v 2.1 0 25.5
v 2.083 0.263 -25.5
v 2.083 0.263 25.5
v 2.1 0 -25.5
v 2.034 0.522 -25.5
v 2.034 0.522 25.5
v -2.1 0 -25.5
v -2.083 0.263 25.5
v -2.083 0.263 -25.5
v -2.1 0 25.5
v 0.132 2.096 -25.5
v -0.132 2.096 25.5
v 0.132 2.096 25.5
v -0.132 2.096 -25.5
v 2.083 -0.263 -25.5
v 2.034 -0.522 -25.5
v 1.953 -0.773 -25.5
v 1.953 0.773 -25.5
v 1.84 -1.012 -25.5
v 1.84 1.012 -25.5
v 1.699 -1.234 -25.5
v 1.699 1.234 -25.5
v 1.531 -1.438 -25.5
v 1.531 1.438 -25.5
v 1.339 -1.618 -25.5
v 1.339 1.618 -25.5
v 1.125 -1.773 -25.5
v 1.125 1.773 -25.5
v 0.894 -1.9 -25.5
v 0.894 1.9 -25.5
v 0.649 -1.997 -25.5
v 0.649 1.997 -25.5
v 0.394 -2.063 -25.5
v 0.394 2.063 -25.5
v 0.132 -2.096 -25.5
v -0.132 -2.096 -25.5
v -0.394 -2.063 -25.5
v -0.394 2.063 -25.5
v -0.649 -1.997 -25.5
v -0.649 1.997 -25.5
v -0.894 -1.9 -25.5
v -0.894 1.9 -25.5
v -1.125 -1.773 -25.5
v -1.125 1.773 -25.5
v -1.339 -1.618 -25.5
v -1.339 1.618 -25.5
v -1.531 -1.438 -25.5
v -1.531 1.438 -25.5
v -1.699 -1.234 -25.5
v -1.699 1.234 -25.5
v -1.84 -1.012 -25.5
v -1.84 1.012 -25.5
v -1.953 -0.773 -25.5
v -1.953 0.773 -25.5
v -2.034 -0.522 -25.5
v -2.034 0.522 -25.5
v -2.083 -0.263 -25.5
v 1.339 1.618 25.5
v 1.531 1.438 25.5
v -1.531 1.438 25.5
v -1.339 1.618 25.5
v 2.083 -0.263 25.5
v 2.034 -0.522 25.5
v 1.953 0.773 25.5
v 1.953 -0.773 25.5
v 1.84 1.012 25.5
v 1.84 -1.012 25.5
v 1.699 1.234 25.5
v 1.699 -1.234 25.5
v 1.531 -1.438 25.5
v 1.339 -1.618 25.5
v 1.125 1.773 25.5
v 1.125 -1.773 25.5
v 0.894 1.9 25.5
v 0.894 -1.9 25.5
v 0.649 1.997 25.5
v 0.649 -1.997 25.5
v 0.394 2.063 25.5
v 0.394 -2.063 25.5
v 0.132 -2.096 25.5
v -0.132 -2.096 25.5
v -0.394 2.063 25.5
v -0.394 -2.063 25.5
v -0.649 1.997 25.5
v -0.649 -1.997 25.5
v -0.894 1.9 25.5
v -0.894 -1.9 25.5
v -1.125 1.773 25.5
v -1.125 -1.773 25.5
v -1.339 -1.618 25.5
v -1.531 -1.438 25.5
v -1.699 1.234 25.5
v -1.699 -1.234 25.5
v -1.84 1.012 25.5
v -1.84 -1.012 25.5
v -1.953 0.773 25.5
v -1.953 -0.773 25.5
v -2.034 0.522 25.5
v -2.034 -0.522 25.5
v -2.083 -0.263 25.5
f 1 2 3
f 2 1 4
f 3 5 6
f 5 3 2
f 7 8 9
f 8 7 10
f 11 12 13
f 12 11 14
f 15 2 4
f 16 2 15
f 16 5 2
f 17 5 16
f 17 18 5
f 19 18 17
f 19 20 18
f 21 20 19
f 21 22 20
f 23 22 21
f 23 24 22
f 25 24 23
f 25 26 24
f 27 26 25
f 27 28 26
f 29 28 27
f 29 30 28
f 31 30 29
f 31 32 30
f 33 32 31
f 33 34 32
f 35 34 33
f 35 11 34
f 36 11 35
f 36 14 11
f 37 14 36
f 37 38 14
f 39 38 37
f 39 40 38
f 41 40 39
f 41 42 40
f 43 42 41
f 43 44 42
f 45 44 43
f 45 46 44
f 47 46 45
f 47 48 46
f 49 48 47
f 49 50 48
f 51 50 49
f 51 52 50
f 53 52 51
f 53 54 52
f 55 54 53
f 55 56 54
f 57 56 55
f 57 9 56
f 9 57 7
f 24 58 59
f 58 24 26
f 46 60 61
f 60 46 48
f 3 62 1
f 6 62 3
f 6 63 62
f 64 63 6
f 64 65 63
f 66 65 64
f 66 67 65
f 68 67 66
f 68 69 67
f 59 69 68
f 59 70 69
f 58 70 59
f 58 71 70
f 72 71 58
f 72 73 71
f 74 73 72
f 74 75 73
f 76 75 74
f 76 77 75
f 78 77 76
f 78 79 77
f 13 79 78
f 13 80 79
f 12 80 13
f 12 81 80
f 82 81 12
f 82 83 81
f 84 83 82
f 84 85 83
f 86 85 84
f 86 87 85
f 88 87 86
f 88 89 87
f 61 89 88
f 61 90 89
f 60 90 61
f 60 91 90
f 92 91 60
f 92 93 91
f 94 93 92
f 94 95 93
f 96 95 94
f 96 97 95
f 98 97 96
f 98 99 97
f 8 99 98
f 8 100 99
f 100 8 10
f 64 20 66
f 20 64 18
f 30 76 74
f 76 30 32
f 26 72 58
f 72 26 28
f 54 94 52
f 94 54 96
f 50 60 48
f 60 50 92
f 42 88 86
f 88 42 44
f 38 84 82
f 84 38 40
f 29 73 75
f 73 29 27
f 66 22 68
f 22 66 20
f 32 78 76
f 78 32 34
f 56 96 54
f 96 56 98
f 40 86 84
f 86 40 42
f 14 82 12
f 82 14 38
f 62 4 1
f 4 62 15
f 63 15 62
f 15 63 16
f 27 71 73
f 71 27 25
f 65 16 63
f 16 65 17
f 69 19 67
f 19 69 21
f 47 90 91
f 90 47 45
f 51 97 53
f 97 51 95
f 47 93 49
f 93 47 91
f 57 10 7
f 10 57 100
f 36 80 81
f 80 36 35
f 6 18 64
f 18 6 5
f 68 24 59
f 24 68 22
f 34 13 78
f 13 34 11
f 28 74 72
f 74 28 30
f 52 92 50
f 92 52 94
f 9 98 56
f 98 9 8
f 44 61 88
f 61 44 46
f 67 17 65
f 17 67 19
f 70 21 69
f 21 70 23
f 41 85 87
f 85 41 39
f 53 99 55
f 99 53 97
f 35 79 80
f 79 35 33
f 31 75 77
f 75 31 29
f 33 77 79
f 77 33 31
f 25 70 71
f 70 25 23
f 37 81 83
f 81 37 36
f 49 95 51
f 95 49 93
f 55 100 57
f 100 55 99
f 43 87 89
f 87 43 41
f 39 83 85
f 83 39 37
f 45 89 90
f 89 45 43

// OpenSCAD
$fn = 50;


difference() {
	union() {
		translate(v = [0, 0, -25.5000000000]) {
			cylinder(h = 51, r = 2.1000000000);
		}
	}
	union() {
		translate(v = [0, 0, -100.0000000000]) {
			cylinder(h = 200, r = 0);
		}
	}
}
